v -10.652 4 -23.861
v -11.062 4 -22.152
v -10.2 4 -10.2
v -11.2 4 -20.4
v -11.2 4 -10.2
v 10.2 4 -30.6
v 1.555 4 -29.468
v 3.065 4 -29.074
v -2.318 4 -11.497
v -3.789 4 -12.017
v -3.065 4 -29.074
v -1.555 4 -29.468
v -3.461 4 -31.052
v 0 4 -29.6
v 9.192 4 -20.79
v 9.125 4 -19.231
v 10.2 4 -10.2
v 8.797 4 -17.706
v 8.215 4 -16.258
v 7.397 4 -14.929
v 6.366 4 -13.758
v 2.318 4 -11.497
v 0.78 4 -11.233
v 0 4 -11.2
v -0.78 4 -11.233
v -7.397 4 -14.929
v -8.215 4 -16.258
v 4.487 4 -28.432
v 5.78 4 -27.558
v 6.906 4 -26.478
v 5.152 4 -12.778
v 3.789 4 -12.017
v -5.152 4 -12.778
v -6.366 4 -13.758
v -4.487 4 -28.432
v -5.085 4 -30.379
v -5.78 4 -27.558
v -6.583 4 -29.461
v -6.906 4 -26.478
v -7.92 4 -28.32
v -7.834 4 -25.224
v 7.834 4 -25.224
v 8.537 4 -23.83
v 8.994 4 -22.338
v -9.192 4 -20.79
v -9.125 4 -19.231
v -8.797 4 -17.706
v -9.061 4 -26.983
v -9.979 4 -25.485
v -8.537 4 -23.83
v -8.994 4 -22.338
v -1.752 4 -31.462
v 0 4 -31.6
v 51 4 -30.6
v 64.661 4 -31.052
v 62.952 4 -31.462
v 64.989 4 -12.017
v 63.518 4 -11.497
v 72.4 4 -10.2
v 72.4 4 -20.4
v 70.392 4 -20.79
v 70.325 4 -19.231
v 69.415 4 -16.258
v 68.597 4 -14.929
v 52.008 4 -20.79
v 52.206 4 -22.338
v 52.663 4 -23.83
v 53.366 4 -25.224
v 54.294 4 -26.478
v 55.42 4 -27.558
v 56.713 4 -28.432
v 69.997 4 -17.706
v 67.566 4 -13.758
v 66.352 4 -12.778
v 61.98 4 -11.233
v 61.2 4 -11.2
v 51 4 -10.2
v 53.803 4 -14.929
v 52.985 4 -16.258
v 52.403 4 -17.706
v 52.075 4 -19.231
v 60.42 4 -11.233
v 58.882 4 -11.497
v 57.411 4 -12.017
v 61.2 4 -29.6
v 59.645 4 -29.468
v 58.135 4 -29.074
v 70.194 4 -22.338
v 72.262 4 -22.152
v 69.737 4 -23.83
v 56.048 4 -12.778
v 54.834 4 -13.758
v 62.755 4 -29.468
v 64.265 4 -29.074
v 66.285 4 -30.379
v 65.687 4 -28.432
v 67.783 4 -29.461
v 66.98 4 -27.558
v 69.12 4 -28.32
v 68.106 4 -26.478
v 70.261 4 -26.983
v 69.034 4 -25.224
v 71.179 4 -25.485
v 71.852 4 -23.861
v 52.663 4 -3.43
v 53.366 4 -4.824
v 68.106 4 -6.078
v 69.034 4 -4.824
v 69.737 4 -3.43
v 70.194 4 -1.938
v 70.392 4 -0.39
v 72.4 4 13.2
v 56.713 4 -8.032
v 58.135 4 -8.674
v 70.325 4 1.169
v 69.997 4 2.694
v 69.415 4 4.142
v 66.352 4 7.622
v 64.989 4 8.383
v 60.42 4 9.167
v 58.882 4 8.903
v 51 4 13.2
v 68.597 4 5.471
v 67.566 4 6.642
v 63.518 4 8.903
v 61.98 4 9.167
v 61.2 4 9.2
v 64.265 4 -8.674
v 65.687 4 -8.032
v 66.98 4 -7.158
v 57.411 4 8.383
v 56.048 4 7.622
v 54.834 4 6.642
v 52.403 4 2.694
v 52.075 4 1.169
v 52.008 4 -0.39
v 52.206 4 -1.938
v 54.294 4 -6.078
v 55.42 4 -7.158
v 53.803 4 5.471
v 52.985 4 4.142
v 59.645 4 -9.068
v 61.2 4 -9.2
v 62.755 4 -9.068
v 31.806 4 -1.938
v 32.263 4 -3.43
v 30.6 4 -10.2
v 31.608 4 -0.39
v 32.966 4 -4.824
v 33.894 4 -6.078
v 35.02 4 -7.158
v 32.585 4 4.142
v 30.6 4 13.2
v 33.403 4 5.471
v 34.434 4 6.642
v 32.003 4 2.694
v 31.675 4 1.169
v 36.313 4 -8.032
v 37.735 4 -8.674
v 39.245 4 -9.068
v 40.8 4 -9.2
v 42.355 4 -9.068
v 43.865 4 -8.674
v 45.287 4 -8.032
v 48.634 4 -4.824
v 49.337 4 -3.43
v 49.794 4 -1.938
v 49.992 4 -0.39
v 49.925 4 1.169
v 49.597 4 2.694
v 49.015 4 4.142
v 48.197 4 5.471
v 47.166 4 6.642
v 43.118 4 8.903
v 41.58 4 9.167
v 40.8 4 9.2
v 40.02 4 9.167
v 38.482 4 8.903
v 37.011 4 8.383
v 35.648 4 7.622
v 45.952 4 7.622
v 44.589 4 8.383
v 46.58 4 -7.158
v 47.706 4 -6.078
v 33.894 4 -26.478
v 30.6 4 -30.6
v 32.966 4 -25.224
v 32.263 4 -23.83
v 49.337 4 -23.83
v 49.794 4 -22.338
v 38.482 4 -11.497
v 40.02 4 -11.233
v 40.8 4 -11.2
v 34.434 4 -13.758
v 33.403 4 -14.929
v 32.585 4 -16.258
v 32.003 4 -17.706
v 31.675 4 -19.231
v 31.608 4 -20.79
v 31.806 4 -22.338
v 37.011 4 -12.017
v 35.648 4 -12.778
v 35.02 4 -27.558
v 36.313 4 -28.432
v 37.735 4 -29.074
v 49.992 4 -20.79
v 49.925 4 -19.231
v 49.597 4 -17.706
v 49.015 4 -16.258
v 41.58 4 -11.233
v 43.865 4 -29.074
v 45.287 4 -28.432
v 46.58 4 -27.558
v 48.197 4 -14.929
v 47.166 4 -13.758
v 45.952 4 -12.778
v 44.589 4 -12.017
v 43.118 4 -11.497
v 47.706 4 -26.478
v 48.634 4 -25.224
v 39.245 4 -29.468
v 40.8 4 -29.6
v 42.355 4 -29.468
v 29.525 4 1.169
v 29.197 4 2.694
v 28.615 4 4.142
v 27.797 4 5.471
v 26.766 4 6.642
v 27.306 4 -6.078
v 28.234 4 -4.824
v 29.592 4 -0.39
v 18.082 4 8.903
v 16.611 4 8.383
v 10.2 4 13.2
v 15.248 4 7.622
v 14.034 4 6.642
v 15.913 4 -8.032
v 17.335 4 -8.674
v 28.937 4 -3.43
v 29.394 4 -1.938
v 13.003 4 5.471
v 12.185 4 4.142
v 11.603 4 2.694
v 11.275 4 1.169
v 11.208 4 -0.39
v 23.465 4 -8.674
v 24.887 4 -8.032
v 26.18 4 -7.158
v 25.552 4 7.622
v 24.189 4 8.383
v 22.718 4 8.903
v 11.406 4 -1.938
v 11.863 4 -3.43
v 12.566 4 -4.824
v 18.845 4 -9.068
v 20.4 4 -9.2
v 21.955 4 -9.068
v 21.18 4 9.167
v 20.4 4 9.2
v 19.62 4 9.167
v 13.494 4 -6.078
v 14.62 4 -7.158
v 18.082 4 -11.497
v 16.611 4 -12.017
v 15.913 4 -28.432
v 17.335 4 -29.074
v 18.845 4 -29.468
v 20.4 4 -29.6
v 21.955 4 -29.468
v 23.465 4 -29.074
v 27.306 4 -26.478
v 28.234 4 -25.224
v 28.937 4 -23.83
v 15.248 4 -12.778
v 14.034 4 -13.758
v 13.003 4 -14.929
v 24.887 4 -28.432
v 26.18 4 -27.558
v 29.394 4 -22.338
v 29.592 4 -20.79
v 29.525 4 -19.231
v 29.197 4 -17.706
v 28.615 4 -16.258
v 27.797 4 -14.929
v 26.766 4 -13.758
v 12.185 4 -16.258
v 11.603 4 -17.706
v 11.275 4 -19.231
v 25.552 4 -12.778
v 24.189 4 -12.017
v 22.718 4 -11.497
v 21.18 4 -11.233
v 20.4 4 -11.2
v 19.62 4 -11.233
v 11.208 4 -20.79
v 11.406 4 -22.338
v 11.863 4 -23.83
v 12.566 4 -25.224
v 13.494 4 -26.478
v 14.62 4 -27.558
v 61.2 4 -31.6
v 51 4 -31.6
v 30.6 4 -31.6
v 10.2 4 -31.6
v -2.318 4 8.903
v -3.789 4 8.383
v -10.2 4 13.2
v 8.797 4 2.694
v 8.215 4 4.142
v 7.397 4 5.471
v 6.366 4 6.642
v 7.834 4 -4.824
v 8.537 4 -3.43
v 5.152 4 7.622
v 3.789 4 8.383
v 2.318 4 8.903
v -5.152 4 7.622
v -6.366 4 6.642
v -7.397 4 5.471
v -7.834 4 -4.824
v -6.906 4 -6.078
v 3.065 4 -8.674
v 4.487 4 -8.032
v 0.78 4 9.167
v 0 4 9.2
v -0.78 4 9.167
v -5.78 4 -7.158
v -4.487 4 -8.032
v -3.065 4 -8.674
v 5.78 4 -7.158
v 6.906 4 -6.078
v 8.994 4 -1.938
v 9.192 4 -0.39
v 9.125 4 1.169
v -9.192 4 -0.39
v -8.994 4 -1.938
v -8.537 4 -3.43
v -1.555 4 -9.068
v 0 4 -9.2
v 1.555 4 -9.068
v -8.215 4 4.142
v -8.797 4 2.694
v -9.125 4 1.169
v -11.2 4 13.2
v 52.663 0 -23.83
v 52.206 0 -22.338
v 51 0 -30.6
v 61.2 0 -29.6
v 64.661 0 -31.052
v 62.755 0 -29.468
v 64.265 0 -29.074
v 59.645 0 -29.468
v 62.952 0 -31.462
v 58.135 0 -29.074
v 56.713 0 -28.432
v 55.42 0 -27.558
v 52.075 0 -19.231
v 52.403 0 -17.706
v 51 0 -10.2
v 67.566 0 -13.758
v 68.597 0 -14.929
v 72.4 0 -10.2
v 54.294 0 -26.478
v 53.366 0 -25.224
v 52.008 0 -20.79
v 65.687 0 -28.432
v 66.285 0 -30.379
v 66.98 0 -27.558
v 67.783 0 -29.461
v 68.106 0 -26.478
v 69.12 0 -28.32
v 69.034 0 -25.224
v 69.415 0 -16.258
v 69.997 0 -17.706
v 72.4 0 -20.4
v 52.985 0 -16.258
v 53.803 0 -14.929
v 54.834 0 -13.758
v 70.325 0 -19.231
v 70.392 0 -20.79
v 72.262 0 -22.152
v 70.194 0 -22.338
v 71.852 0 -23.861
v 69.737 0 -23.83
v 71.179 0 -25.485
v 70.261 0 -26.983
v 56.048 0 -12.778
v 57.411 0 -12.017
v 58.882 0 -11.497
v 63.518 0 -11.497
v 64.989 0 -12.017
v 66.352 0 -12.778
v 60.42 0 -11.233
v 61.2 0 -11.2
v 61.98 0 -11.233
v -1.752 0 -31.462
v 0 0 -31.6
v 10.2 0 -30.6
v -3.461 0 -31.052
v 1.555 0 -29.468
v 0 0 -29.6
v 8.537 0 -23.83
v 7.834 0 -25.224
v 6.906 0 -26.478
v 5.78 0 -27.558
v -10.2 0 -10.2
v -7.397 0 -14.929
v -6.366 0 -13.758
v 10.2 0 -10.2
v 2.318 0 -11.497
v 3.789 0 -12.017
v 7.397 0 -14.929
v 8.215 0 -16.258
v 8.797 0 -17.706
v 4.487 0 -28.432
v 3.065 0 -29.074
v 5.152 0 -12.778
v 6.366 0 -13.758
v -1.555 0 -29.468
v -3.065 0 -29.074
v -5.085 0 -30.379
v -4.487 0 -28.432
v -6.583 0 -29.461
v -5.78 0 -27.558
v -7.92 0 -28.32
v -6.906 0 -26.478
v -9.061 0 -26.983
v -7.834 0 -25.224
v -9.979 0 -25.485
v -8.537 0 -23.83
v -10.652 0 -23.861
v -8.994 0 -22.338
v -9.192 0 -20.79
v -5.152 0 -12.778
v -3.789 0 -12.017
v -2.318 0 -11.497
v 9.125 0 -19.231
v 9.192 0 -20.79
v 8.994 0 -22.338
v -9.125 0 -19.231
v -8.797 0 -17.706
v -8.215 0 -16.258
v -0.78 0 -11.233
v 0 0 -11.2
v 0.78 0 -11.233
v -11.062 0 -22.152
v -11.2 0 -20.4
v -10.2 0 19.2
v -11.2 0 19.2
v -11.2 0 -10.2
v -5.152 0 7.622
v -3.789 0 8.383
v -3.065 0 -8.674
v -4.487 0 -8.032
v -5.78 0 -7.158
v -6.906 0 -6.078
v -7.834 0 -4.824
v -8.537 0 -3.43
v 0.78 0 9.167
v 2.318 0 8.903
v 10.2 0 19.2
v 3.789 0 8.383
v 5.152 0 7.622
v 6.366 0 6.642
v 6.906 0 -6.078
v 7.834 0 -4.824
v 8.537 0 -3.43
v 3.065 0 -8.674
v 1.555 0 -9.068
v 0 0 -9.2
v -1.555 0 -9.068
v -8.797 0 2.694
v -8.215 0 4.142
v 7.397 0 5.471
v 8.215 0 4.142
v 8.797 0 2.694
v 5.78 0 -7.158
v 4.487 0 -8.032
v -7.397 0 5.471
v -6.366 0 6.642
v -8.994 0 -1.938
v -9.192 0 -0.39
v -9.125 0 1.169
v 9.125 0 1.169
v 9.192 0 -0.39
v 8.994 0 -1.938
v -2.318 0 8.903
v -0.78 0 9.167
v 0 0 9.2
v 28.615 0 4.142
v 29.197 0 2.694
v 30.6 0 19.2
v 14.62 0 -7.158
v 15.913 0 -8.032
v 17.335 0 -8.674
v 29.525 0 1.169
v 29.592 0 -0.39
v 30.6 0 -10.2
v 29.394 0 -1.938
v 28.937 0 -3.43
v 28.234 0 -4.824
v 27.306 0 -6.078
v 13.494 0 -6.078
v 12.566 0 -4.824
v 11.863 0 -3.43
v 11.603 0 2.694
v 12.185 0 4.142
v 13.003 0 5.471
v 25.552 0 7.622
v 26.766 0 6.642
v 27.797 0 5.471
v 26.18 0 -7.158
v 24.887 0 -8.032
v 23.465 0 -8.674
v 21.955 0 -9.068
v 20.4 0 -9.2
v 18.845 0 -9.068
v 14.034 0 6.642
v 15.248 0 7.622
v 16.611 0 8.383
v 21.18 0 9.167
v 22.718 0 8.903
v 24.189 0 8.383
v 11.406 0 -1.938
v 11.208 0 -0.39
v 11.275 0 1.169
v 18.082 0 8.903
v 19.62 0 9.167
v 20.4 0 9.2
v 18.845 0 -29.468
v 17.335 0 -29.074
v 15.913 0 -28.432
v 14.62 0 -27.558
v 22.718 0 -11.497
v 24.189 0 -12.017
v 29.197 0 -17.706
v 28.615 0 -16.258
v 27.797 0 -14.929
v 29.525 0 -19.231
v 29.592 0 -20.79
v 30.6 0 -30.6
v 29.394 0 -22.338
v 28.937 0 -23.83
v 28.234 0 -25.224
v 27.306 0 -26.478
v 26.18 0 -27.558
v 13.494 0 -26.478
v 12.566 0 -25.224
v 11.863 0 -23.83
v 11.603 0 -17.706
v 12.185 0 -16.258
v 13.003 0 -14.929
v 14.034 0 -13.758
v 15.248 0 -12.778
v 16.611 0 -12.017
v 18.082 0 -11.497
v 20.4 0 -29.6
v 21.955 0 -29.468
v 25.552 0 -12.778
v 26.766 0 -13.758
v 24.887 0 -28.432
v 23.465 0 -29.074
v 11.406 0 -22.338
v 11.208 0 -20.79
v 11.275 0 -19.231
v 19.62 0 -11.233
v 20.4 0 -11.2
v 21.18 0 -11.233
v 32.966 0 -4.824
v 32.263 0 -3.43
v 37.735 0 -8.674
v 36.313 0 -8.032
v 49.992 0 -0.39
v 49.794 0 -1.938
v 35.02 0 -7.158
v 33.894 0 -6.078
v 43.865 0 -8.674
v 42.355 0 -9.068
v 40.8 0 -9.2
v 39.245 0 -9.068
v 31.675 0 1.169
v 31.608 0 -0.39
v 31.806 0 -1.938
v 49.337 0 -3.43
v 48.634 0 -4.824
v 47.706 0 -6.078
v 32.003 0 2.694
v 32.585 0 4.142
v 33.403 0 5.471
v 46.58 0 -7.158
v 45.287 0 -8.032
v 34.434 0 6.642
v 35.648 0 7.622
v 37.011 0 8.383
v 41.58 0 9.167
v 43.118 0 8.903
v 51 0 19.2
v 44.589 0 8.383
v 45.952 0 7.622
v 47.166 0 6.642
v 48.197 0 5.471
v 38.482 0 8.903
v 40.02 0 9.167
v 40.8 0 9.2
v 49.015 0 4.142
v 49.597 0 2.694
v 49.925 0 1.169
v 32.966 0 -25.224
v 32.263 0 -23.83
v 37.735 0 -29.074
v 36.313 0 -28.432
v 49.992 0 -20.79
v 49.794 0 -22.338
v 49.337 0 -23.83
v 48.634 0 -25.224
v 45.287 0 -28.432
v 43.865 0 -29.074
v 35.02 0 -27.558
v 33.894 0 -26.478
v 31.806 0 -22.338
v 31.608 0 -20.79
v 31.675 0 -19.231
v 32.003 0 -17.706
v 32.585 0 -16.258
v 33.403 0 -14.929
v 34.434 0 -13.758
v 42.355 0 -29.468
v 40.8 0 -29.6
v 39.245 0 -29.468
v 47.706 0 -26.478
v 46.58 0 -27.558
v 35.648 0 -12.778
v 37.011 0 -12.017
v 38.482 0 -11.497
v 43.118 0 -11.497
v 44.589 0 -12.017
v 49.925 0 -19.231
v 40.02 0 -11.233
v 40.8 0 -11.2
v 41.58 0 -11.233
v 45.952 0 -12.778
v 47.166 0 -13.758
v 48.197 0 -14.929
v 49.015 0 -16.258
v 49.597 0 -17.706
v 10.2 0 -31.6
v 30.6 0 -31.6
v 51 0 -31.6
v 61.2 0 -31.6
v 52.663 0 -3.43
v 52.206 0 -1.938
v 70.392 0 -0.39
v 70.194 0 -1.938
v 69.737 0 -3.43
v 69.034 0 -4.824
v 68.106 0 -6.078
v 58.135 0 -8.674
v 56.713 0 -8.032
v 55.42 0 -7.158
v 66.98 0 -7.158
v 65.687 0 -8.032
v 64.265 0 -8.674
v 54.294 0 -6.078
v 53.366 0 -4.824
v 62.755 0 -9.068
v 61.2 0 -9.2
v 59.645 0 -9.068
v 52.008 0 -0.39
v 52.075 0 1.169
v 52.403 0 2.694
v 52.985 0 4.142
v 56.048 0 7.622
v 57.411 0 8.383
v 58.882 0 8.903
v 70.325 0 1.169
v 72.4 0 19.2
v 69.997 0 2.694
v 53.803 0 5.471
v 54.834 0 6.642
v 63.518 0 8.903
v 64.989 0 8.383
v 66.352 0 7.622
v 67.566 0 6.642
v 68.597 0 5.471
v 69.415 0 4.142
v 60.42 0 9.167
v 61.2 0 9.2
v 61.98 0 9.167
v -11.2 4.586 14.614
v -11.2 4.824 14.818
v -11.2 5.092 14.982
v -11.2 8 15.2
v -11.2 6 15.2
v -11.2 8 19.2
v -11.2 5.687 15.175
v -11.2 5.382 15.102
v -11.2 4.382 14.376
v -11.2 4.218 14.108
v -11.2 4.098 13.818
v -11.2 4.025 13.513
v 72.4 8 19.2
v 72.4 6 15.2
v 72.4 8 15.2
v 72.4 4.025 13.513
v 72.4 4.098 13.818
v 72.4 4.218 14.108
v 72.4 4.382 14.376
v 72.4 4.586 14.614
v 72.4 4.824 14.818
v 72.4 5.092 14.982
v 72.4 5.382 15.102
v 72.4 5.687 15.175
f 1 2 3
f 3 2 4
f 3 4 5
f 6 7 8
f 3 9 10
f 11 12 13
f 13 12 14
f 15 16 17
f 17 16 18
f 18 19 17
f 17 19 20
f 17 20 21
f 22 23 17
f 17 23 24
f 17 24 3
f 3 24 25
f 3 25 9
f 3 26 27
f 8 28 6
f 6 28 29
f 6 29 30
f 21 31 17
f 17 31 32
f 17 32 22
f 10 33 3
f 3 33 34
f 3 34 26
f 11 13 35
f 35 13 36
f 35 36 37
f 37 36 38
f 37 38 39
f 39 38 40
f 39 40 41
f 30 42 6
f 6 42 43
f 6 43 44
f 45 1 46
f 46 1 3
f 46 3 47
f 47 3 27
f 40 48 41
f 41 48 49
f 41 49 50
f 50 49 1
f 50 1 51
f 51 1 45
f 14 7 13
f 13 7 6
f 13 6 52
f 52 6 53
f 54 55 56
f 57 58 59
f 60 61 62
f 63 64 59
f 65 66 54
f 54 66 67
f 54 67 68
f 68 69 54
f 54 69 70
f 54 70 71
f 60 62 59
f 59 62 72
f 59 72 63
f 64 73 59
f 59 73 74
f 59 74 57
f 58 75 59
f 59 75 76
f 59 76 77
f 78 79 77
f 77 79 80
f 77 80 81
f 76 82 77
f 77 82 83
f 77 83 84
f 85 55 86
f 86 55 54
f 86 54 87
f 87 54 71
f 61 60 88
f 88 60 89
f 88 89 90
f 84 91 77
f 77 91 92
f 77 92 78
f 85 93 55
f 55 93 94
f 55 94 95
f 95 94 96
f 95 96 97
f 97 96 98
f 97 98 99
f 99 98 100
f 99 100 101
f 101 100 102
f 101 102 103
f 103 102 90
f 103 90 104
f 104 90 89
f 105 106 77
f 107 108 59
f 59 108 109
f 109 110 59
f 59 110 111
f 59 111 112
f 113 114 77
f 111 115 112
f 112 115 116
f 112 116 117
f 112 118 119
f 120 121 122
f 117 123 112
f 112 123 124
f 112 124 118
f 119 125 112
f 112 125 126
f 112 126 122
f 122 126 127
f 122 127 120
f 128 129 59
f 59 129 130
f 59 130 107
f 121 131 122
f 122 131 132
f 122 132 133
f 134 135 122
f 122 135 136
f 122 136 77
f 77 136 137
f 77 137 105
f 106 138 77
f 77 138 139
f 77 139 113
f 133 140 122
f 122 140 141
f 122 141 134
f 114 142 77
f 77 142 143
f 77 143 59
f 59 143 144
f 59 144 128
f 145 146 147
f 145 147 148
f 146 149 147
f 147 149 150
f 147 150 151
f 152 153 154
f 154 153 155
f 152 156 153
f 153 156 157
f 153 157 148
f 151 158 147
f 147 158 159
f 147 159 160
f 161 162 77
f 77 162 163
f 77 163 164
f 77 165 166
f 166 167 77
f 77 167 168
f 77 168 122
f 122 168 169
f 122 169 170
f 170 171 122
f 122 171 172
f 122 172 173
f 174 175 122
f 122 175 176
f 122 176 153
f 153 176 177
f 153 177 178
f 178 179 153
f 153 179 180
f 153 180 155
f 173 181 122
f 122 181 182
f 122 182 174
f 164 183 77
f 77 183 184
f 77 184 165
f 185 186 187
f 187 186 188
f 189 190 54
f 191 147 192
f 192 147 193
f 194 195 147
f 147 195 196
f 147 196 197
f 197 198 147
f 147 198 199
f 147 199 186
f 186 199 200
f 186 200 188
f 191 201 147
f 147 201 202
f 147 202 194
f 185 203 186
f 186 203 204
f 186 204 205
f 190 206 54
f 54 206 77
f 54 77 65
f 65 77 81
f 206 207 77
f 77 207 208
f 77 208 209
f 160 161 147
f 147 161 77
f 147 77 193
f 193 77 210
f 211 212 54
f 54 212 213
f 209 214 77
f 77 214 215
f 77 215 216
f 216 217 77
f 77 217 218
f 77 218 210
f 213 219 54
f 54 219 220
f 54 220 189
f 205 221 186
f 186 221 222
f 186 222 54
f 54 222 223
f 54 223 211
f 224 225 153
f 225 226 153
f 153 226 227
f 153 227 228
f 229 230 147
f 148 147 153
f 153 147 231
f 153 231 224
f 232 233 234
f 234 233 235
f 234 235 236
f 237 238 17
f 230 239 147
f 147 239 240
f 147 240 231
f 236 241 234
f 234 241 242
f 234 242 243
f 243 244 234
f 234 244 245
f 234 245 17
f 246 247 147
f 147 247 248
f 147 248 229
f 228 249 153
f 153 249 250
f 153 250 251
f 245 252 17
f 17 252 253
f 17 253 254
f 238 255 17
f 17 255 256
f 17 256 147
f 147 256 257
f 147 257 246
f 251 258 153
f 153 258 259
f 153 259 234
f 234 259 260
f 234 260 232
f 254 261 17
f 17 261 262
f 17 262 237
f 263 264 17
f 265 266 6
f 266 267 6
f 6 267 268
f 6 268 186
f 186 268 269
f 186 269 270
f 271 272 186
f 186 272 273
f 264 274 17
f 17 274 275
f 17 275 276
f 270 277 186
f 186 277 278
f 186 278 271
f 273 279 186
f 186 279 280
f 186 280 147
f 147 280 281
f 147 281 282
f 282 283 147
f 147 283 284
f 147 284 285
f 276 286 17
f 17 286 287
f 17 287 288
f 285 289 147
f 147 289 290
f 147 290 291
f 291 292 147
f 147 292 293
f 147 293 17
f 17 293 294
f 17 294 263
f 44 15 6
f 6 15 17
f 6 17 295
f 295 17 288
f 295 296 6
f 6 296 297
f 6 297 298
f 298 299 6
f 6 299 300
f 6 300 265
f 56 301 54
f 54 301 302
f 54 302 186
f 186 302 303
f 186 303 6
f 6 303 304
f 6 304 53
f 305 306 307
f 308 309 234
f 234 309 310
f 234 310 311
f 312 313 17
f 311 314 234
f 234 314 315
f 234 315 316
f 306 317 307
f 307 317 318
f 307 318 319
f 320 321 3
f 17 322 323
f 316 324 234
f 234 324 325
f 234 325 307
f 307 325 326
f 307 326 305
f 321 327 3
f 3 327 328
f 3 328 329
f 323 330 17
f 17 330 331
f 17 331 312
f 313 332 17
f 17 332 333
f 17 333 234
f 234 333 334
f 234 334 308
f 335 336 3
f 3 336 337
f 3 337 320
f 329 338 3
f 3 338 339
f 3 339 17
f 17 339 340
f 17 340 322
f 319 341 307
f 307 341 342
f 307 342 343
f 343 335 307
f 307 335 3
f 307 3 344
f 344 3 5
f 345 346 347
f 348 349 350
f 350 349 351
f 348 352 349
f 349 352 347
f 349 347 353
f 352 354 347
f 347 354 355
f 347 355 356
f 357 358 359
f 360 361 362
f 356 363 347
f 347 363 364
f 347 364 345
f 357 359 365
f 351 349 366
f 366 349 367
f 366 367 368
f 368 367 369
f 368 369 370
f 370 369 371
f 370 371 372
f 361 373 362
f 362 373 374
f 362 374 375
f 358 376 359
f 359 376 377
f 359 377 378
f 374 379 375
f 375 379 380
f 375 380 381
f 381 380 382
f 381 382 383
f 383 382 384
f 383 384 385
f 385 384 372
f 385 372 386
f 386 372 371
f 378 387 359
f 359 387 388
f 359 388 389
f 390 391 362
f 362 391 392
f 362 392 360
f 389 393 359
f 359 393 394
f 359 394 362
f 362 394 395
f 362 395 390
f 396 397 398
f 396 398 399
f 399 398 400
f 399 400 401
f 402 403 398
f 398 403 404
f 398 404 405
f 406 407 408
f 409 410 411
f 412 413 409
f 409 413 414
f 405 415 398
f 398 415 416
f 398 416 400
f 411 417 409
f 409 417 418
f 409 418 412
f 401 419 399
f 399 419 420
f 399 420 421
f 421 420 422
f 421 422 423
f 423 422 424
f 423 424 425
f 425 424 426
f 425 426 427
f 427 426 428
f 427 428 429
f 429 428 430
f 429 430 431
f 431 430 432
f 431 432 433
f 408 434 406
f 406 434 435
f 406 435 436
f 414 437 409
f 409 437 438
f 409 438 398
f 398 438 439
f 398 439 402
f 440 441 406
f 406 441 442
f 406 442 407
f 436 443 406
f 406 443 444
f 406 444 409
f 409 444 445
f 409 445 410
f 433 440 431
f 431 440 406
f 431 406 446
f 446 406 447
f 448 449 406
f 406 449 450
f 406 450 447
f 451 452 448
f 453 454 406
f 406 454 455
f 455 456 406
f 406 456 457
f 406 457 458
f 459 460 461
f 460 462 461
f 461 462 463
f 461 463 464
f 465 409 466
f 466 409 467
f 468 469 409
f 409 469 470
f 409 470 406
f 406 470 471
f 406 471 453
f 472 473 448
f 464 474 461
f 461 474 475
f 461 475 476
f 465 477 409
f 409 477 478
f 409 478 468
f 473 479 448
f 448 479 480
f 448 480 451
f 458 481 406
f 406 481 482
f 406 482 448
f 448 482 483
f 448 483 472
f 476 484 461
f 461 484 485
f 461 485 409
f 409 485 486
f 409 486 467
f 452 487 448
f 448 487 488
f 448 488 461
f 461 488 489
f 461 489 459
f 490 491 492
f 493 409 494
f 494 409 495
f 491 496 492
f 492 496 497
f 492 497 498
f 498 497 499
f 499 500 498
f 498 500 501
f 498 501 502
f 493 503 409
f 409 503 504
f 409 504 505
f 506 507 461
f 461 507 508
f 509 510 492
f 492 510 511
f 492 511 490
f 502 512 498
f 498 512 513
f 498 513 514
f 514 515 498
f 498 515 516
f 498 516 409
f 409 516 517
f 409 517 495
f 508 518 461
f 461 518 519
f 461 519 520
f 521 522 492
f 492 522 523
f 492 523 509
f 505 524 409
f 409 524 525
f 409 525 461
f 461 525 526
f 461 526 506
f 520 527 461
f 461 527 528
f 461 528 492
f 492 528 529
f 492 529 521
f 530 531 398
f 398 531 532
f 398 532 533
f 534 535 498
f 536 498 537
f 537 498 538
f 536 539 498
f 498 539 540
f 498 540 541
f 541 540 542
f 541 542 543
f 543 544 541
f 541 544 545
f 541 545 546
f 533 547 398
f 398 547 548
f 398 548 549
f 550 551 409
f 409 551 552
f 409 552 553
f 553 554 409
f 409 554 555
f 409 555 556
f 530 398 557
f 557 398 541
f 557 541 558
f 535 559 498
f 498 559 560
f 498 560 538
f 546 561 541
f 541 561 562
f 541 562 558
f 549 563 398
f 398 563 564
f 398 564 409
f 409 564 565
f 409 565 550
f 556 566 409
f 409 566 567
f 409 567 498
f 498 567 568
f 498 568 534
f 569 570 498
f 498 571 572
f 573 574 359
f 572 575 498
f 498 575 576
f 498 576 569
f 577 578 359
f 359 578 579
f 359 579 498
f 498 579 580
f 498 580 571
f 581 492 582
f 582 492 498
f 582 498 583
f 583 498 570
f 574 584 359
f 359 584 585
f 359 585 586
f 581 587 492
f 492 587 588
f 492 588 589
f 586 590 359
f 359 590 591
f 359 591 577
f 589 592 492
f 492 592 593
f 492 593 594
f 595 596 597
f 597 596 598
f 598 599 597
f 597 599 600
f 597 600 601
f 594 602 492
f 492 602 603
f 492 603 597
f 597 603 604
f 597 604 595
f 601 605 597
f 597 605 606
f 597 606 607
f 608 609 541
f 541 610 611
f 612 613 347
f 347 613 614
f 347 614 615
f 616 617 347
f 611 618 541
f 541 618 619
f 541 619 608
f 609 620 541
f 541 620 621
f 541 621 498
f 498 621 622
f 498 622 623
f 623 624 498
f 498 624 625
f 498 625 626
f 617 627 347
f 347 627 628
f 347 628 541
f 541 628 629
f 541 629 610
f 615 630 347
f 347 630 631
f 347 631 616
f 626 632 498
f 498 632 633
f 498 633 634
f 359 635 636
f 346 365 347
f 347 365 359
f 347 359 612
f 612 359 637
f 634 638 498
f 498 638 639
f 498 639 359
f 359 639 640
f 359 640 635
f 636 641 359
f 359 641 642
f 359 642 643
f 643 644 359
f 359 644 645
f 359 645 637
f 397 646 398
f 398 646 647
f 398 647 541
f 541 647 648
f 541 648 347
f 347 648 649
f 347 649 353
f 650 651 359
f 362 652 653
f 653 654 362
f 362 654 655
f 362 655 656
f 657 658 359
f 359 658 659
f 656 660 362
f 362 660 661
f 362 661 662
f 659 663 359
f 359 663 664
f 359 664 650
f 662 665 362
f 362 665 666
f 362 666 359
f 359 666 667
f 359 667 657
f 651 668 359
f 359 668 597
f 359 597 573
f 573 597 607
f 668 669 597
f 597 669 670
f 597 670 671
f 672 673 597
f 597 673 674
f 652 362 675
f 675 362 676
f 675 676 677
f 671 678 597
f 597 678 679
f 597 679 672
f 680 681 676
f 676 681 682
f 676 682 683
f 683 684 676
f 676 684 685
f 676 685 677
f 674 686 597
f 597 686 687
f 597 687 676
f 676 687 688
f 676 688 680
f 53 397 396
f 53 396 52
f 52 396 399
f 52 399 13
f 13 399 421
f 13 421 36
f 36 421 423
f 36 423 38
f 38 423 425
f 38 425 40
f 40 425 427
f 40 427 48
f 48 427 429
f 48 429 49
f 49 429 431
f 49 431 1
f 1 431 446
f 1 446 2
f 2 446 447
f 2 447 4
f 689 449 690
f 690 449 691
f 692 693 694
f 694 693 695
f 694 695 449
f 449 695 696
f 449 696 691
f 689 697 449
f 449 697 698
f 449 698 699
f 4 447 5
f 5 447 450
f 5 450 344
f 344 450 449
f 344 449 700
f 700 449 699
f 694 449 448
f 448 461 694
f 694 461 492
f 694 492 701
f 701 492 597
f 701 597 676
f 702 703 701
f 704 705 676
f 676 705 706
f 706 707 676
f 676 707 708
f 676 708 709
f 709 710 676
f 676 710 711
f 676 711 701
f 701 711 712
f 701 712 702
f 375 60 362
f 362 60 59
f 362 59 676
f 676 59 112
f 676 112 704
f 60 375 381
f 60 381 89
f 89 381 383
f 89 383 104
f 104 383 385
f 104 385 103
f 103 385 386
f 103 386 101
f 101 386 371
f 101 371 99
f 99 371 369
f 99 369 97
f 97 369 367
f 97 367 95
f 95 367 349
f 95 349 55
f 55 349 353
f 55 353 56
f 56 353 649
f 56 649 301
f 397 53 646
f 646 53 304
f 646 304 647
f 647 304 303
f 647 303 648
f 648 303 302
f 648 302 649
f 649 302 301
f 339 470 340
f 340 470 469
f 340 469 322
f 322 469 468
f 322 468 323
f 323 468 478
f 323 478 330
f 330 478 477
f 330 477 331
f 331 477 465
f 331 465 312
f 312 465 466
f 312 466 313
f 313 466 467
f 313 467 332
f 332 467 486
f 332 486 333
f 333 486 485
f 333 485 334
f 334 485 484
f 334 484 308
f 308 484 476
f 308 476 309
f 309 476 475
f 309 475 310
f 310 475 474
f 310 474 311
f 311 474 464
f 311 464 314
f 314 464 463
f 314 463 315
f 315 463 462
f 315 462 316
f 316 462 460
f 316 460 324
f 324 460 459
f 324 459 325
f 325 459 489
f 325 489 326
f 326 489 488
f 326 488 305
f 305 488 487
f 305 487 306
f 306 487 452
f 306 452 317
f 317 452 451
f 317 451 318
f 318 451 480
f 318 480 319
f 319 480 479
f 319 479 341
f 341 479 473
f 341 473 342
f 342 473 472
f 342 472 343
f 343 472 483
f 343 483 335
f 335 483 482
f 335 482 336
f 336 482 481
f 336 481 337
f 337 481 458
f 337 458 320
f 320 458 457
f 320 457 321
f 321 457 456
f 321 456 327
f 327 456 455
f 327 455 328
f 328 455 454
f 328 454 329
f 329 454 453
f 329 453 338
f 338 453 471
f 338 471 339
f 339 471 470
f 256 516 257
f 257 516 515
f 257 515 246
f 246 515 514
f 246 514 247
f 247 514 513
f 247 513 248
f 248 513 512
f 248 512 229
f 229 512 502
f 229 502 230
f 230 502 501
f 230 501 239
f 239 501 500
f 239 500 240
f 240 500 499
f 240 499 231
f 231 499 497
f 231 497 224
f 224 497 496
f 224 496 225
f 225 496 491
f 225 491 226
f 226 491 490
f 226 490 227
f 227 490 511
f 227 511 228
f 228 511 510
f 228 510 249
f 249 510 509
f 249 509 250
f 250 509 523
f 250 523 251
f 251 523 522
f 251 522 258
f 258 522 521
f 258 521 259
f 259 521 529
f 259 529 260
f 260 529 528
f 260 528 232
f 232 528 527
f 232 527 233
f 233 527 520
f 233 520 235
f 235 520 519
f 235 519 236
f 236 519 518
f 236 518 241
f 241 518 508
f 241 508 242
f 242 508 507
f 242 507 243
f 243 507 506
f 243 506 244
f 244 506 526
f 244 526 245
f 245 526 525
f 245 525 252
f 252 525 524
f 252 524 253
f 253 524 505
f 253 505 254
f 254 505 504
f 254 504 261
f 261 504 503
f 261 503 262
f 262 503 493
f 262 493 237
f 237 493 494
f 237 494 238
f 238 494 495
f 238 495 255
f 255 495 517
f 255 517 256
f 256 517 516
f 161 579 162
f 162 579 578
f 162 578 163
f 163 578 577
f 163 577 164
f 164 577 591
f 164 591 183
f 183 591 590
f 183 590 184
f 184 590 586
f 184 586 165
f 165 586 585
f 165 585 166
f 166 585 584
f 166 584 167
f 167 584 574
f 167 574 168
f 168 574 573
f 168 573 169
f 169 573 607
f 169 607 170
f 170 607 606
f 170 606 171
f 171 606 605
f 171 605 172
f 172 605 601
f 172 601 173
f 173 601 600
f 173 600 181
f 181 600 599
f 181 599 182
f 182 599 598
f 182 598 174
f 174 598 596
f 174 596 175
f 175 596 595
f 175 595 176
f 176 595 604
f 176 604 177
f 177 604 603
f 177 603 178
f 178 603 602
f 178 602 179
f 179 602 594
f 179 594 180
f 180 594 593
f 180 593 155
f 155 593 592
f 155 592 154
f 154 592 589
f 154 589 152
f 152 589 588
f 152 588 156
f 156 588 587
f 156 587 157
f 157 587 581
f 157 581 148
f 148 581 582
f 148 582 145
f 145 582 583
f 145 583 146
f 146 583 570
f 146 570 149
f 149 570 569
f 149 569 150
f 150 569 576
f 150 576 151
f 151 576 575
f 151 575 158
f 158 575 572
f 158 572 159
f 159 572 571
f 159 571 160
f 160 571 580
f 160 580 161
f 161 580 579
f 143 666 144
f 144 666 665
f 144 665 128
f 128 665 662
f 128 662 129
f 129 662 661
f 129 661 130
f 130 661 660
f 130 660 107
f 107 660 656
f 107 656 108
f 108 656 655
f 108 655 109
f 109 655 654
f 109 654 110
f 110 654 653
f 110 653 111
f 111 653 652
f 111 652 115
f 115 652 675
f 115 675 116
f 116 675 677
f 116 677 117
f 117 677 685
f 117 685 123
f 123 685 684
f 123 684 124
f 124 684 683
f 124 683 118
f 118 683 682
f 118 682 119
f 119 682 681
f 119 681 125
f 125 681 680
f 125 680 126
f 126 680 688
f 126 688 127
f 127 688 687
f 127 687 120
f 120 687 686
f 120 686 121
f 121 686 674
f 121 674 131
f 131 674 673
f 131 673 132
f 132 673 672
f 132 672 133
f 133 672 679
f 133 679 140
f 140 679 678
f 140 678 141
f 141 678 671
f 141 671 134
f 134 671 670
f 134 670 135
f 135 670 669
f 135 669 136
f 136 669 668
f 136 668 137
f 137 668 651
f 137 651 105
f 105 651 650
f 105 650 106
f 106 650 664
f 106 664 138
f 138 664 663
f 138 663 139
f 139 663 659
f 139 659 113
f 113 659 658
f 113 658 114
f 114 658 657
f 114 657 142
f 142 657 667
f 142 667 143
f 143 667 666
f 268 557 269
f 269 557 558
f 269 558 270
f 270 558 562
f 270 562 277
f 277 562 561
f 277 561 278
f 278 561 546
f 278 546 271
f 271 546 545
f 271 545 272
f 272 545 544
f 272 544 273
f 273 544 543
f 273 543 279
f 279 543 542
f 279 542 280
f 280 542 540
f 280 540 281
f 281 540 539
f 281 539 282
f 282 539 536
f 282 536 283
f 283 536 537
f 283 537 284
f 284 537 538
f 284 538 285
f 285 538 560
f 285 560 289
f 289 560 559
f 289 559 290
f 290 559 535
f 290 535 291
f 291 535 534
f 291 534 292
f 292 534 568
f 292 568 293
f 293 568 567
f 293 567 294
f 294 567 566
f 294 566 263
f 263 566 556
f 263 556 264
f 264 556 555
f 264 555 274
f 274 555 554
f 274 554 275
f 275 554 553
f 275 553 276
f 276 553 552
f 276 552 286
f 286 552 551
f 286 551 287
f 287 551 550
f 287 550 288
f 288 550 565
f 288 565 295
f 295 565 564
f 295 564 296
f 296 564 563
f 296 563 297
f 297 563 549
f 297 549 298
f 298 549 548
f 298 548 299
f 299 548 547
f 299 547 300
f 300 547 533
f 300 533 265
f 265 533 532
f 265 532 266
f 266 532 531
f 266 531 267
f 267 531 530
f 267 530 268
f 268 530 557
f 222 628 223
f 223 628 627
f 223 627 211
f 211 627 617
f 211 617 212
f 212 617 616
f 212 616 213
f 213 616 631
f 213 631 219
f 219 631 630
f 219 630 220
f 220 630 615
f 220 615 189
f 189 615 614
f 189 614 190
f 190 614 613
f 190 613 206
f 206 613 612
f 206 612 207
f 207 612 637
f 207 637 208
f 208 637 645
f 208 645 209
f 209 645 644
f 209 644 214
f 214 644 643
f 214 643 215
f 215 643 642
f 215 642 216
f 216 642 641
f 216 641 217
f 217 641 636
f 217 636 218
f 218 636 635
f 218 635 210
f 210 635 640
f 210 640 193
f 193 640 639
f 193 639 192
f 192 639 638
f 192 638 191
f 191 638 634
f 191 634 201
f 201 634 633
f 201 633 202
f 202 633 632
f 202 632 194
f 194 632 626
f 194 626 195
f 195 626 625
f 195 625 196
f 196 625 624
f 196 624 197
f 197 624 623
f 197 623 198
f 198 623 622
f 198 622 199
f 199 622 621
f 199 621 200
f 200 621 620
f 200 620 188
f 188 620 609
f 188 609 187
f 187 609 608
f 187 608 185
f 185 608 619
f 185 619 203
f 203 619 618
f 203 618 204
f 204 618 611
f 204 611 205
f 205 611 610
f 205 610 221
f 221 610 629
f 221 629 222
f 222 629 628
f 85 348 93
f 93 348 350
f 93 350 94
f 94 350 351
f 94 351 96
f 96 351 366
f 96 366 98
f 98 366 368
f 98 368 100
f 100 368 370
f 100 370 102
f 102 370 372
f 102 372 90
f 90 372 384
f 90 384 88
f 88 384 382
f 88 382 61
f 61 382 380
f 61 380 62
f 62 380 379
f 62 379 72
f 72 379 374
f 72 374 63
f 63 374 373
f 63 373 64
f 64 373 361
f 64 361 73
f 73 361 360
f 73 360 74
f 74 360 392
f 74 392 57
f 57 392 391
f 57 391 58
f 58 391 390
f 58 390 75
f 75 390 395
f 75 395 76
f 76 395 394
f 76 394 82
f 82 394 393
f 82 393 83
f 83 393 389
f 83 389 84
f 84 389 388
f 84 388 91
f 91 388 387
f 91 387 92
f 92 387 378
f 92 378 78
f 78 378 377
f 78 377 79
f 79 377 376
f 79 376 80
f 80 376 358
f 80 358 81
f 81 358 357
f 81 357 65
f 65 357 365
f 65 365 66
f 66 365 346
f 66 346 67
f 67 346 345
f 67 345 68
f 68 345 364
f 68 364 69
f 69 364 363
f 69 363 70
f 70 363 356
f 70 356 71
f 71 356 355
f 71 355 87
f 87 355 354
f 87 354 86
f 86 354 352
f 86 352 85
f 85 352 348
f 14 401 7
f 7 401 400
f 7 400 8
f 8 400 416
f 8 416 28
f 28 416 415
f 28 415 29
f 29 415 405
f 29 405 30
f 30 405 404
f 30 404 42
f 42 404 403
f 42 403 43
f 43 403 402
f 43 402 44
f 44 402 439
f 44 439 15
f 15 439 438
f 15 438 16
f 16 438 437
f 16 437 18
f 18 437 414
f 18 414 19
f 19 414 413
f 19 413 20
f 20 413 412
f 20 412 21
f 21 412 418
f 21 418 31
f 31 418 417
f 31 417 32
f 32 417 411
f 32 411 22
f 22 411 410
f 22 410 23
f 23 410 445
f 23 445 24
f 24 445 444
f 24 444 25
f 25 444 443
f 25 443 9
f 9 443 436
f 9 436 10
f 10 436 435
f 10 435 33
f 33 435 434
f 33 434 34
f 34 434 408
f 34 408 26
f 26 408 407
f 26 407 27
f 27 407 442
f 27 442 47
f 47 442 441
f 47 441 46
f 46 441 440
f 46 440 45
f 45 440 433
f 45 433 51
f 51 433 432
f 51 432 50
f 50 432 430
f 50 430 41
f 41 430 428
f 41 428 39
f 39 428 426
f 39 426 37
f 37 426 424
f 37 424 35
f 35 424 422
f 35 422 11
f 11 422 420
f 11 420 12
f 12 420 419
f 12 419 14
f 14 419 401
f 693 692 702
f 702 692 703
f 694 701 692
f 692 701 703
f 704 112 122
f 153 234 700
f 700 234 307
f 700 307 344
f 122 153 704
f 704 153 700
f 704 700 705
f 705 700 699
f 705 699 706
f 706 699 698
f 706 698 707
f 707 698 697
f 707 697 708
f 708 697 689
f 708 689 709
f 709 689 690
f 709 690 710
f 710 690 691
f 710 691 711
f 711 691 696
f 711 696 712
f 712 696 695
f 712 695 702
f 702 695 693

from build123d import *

# Parameters (mm, degrees)
SKETCH1_R           = 9.2
BOSS_EXTRUDE1_DEPTH = 4
SKETCH2_W           = 83.6
SKETCH2_H           = 4
BOSS_EXTRUDE2_DEPTH = 4
FILLET1_R           = 2


with BuildPart() as part:
    # Sketch1 → Boss-Extrude1 (new body)
    with BuildSketch(Plane(origin=(0, 0, 0), x_dir=(1, 0, 0), z_dir=(0, 1, 0))):
        with BuildLine():
            Line((-11.2, 20.4), (-11.2, -19.2))
            Line((-11.2, -19.2), (72.4, -19.2))
            Line((72.4, -19.2), (72.4, 20.4))
            ThreePointArc((72.4, 20.4), (69.119595949, 28.319595949), (61.2, 31.6))
            Line((61.2, 31.6), (0, 31.6))
            ThreePointArc((0, 31.6), (-7.919595949, 28.319595949), (-11.2, 20.4))
        make_face()
        with Locations(Location((0, 0, 0), (0, 0, 270))):
            Circle(SKETCH1_R, mode=Mode.SUBTRACT)
        with Locations(Location((20.4, 0, 0), (0, 0, 270))):
            Circle(SKETCH1_R, mode=Mode.SUBTRACT)
        with Locations(Location((40.8, 0, 0), (0, 0, 270))):
            Circle(SKETCH1_R, mode=Mode.SUBTRACT)
        with Locations(Location((61.2, 0, 0), (0, 0, 270))):
            Circle(SKETCH1_R, mode=Mode.SUBTRACT)
        with Locations(Location((20.4, 20.4, 0), (0, 0, 270))):
            Circle(SKETCH1_R, mode=Mode.SUBTRACT)
        with Locations(Location((40.8, 20.4, 0), (0, 0, 270))):
            Circle(SKETCH1_R, mode=Mode.SUBTRACT)
        with Locations(Location((61.2, 20.4, 0), (0, 0, 270))):
            Circle(SKETCH1_R, mode=Mode.SUBTRACT)
        with Locations(Location((0, 20.4, 0), (0, 0, 270))):
            Circle(SKETCH1_R, mode=Mode.SUBTRACT)
    extrude(amount=BOSS_EXTRUDE1_DEPTH)

    # Sketch2 → Boss-Extrude2 (add)
    with BuildSketch(Plane(origin=(0, 4, 0), x_dir=(1, 0, 0), z_dir=(0, 1, 0))):
        with Locations((30.6, -17.2)):
            Rectangle(SKETCH2_W, SKETCH2_H)
    extrude(amount=BOSS_EXTRUDE2_DEPTH)

    # Fillet1
    fillet1_edges = [part.edges().sort_by_distance(p)[0] for p in [
        (30.6, 4, 15.2),
    ]]
    fillet(fillet1_edges, radius=FILLET1_R)


solid = part.part
